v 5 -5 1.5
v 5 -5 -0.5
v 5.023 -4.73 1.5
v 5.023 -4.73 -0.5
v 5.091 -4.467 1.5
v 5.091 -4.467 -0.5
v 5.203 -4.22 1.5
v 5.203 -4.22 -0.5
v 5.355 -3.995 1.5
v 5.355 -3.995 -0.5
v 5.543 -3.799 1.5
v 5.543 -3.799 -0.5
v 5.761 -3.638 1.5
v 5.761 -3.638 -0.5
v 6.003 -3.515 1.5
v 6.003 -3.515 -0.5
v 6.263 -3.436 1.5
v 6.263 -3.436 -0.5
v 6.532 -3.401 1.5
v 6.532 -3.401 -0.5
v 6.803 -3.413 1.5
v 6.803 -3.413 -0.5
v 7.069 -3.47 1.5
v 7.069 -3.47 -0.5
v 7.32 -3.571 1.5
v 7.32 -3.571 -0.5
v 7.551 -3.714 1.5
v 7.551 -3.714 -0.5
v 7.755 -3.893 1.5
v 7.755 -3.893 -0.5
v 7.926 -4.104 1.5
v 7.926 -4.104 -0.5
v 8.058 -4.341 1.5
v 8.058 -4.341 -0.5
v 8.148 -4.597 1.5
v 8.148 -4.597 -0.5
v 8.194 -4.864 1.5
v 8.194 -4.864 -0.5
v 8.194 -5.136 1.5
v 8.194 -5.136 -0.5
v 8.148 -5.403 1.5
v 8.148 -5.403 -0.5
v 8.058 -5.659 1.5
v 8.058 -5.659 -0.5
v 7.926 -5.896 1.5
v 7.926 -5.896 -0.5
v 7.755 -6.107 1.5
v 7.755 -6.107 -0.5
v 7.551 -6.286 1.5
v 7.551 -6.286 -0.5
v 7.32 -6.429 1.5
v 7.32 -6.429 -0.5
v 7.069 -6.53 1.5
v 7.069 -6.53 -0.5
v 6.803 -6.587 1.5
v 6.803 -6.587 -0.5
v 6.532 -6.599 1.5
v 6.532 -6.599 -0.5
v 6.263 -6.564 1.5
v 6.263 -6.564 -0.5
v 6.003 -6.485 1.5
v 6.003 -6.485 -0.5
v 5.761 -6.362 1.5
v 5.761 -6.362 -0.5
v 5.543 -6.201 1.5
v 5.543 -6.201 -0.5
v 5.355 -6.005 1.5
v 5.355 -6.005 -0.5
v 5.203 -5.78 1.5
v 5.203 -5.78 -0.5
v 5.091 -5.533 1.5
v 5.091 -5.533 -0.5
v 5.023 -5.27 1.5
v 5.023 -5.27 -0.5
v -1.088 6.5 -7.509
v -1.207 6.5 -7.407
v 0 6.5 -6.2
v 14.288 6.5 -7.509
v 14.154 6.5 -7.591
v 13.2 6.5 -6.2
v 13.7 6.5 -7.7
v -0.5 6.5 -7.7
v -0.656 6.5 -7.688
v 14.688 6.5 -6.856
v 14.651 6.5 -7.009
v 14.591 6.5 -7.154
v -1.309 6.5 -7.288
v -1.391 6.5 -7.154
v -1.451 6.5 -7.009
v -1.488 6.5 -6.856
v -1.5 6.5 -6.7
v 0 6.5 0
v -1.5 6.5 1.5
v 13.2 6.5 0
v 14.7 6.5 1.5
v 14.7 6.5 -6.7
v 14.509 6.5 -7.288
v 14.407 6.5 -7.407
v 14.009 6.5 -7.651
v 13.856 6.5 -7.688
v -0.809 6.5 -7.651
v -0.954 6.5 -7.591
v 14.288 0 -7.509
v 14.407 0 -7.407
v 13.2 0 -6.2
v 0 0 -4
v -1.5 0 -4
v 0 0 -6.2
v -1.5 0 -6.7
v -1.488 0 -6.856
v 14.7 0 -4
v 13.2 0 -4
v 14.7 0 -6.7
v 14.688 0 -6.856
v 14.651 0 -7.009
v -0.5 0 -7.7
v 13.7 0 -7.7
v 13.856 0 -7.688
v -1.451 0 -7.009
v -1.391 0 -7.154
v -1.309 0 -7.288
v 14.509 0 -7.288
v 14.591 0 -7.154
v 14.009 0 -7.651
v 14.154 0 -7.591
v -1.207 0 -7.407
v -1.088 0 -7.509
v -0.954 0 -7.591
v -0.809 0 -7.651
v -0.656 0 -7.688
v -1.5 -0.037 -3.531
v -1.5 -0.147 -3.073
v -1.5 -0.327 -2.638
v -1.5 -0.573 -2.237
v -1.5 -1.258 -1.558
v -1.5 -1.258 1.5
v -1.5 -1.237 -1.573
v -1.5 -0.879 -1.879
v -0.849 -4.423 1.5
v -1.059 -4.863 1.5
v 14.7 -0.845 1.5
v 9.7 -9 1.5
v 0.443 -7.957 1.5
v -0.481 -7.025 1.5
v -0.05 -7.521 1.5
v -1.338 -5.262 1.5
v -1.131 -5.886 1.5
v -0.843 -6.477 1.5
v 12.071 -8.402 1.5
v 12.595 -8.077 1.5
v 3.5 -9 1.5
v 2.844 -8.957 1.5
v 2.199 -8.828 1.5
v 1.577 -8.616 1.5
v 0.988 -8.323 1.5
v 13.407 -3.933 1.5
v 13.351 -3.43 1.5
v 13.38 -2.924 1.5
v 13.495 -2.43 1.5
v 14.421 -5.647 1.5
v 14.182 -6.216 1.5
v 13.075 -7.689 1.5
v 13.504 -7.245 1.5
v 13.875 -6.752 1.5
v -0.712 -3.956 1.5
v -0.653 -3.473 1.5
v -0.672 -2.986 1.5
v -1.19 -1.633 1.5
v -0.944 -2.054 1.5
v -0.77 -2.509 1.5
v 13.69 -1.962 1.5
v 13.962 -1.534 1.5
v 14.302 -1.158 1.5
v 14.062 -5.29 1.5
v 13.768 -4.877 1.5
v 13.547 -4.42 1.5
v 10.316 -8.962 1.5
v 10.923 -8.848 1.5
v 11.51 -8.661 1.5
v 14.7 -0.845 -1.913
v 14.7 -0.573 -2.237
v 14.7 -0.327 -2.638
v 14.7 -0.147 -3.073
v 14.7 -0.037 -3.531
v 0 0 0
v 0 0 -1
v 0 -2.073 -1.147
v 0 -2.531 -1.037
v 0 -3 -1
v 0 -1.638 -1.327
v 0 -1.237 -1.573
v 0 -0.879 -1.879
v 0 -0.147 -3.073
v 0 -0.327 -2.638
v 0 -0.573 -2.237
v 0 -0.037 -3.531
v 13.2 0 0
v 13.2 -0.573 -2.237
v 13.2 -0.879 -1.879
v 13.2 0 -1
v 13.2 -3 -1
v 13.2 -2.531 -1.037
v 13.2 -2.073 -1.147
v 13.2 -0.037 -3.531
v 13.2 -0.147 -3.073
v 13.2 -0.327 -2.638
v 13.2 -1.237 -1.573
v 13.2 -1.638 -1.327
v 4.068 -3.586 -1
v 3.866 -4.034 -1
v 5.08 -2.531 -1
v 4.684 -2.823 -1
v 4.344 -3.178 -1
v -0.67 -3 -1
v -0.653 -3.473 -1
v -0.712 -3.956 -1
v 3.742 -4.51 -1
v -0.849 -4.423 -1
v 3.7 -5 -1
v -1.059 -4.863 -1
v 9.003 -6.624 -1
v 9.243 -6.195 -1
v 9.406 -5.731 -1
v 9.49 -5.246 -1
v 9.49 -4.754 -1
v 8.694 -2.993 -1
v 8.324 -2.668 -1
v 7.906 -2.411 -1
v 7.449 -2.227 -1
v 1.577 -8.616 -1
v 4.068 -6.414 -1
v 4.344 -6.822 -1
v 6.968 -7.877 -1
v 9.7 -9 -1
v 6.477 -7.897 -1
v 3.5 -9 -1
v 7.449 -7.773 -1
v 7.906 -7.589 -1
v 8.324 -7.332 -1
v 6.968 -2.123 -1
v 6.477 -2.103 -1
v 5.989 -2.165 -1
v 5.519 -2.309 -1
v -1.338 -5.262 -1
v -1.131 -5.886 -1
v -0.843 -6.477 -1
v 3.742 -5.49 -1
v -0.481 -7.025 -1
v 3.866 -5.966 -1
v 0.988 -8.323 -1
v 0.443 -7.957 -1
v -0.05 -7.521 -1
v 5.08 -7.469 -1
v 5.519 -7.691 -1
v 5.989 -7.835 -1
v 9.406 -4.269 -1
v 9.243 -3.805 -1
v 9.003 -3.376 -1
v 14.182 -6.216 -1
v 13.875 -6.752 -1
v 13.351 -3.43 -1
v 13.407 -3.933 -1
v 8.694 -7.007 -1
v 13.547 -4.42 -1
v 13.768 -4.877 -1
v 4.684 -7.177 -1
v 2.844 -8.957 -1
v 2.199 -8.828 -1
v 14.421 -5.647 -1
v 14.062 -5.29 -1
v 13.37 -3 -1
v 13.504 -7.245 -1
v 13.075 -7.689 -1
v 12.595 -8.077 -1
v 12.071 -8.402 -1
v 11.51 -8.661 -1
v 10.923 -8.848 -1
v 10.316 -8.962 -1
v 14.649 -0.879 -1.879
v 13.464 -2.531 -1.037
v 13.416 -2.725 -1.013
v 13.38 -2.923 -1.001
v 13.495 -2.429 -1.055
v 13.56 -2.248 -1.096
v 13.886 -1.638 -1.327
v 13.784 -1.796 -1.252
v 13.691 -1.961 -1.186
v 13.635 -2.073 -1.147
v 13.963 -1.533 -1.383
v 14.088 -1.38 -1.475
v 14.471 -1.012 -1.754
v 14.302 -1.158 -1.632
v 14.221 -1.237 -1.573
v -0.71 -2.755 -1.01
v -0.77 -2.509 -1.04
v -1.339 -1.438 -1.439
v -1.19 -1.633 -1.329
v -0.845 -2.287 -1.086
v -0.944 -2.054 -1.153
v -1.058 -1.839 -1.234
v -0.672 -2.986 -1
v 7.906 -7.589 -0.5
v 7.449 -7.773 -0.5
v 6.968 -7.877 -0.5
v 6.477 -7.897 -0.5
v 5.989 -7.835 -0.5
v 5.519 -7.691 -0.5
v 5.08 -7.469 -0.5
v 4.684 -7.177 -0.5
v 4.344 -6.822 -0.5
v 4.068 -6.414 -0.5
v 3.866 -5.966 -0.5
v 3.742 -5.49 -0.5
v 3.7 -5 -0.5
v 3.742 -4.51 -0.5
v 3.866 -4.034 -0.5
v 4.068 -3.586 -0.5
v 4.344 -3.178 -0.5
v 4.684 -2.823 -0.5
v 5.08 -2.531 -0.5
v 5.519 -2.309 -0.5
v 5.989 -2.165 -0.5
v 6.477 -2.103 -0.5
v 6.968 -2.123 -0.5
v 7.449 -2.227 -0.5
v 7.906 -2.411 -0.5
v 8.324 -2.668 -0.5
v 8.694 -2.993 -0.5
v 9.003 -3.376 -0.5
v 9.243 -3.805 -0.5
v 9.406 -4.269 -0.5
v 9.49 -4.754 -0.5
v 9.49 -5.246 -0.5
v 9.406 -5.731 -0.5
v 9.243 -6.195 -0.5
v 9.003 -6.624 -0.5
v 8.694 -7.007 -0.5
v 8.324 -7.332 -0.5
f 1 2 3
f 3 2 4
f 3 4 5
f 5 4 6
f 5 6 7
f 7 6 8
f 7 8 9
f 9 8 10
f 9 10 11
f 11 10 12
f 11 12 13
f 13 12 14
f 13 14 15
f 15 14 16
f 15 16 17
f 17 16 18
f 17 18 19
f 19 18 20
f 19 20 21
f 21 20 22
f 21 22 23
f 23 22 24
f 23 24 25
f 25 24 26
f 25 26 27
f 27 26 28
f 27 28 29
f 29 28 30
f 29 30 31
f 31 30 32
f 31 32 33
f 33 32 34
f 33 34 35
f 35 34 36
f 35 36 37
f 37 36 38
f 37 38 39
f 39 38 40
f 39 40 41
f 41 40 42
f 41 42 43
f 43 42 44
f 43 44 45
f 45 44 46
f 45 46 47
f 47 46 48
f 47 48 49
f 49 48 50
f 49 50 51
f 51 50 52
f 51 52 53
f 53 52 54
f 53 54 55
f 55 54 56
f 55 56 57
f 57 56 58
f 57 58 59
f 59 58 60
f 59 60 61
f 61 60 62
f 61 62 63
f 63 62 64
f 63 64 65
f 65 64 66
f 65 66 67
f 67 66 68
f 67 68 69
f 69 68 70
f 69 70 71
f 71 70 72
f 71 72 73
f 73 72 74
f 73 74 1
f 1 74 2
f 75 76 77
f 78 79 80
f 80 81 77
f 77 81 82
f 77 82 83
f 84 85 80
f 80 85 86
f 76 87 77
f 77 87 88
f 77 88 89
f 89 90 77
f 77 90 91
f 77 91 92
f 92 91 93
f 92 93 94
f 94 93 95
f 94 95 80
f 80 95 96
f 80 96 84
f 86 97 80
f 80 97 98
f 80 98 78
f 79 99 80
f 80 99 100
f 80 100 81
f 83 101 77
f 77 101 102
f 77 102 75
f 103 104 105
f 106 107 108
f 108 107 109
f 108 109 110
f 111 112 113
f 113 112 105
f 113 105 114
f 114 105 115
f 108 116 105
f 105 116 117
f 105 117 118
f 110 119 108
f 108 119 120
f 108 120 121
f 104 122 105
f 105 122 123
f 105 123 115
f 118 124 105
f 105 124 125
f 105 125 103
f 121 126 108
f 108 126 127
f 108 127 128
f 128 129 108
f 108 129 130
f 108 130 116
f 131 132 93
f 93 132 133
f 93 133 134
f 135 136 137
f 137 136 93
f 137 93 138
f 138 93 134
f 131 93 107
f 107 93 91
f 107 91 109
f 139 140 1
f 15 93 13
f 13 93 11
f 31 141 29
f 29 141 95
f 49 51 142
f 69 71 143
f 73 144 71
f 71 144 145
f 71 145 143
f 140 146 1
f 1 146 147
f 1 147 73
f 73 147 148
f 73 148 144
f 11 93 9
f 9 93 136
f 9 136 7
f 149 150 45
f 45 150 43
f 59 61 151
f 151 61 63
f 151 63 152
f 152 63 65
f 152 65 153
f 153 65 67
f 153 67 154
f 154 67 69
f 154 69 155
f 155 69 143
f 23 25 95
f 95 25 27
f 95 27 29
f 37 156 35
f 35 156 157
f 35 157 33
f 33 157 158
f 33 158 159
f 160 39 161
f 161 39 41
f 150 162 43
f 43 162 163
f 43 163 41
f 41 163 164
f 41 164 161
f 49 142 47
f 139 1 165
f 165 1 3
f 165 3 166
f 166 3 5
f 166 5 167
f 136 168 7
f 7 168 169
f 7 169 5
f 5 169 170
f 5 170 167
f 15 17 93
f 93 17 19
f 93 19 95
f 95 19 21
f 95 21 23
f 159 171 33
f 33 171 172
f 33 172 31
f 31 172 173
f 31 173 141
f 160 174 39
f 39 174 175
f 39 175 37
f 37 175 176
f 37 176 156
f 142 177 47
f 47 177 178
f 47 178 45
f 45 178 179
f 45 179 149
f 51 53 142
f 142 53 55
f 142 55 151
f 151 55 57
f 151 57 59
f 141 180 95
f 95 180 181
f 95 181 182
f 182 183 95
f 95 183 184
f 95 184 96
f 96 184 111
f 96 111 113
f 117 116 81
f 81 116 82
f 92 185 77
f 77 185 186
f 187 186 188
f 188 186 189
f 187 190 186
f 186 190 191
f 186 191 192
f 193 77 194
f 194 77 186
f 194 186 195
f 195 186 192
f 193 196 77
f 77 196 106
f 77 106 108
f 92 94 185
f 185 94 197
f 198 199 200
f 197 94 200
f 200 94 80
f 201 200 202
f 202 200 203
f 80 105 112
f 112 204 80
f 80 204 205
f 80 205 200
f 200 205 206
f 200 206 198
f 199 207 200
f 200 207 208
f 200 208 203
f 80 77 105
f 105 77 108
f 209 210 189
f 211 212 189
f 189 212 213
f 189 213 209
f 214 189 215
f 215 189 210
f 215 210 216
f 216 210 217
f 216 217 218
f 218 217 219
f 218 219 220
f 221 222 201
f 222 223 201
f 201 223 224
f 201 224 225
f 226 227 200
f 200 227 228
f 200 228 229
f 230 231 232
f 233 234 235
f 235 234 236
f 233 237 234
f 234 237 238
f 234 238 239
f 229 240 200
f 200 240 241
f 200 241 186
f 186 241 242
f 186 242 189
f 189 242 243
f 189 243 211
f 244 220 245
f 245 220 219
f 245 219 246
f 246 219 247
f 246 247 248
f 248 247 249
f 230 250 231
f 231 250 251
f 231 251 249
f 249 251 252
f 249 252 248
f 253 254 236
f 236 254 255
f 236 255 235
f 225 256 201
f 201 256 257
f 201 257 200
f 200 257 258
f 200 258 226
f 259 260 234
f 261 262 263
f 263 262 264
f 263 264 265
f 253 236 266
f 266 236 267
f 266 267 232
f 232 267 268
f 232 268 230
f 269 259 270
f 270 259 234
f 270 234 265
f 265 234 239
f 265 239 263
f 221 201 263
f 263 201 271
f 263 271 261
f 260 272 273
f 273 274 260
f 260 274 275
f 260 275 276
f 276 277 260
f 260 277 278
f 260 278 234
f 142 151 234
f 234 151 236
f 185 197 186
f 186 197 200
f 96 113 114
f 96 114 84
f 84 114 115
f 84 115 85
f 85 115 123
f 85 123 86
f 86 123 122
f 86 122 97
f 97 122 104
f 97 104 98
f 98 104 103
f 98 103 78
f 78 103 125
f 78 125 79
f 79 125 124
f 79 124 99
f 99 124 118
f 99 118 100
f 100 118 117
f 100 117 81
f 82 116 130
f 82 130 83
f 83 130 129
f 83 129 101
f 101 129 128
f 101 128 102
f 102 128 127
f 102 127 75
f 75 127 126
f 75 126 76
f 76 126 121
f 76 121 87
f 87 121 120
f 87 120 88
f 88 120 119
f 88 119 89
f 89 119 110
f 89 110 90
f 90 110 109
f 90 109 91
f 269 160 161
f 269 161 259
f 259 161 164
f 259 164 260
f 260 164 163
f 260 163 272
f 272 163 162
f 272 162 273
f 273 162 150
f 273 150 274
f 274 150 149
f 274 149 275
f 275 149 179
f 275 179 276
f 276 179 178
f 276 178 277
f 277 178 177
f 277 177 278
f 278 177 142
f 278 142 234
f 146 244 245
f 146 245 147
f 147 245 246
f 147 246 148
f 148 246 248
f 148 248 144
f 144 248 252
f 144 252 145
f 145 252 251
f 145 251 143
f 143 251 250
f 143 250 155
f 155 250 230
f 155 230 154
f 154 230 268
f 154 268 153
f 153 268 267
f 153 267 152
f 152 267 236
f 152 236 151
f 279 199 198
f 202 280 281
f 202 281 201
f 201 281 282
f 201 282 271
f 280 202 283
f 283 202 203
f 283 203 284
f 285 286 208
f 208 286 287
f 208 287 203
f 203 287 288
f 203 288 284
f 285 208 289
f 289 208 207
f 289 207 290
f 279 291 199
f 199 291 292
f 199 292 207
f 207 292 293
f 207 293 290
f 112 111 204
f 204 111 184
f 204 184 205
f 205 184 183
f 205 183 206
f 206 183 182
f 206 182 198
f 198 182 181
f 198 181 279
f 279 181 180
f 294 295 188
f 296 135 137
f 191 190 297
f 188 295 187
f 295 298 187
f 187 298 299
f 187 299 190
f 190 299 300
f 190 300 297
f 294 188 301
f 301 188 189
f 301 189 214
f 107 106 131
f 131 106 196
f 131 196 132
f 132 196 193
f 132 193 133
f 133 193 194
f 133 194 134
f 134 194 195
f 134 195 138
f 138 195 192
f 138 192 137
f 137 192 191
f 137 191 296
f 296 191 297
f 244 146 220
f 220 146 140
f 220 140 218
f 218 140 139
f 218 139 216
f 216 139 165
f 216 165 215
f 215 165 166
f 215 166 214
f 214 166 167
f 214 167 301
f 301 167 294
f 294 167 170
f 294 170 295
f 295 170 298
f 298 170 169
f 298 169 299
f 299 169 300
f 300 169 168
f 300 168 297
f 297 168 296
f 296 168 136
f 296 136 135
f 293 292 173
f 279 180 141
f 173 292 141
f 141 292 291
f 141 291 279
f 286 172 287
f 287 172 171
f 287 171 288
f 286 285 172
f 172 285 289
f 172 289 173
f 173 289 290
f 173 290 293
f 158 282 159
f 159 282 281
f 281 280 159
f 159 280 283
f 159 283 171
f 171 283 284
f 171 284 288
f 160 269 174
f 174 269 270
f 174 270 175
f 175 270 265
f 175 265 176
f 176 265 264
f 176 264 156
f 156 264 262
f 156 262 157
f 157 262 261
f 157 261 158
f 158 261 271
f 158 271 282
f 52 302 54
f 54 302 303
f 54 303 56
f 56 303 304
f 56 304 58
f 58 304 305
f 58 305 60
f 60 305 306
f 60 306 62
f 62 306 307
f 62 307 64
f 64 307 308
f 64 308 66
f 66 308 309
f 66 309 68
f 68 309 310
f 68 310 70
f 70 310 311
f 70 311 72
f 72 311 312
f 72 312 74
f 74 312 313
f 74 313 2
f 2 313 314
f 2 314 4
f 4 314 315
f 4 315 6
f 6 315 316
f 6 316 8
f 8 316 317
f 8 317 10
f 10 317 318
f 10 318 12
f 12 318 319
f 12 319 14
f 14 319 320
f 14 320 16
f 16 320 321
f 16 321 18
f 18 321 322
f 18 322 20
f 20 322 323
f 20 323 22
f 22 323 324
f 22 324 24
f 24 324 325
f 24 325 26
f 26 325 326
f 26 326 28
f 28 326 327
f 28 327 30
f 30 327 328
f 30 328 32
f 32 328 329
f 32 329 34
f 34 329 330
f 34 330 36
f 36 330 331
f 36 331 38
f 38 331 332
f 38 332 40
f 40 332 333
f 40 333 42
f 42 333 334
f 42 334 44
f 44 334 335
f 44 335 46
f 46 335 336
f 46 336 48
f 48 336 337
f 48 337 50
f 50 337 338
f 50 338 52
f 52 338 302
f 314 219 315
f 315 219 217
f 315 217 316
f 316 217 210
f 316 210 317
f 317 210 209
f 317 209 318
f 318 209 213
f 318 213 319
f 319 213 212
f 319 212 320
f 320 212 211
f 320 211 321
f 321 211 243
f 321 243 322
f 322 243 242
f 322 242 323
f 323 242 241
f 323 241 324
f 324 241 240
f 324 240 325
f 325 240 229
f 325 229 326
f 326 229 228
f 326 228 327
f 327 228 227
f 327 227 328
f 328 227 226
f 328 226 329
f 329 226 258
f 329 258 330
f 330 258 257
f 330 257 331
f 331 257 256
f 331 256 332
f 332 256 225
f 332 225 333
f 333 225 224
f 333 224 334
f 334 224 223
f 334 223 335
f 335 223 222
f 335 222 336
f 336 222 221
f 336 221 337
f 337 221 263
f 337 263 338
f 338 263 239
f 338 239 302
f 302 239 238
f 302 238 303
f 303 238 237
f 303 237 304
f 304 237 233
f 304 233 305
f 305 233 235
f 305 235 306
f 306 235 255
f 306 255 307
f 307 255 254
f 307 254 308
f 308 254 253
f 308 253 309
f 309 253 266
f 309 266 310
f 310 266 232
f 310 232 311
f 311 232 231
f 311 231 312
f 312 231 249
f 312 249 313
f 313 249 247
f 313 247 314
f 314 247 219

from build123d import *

# Parameters (mm, degrees)
CROQUIS1_W              = 16.2
CROQUIS1_H              = 9.2
CROQUIS1_W_2            = 13.2
CROQUIS1_H_2            = 6.2
SALIENTE_EXTRUIR1_DEPTH = 6.5
CROQUIS3_W              = 16.2
CROQUIS3_H              = 2.5
SALIENTE_EXTRUIR2_DEPTH = 9
CROQUIS4_R              = 1.6
CORTAR_EXTRUIR1_DEPTH   = 2.5
REDONDEO1_R             = 1
REDONDEO2_R             = 5
REDONDEO3_R             = 3
CORTAR_EXTRUIR2_REACH   = 21.538
CROQUIS5_R              = 3
CROQUIS6_R              = 2.9
CORTAR_EXTRUIR3_DEPTH   = 0.5


with BuildPart() as part:
    # Croquis1 → Saliente-Extruir1 (new body)
    with BuildSketch(Plane(origin=(0, 0, 0), x_dir=(1, 0, 0), z_dir=(0, 1, 0))):
        with Locations((6.6, 3.1)):
            Rectangle(CROQUIS1_W, CROQUIS1_H)
        with Locations((6.6, 3.1)):
            Rectangle(CROQUIS1_W_2, CROQUIS1_H_2, mode=Mode.SUBTRACT)
    extrude(amount=SALIENTE_EXTRUIR1_DEPTH)

    # Croquis3 → Saliente-Extruir2 (add)
    with BuildSketch(Plane.XZ):
        with Locations((6.6, 0.25)):
            Rectangle(CROQUIS3_W, CROQUIS3_H)
    extrude(amount=SALIENTE_EXTRUIR2_DEPTH)

    # Croquis4 → Cortar-Extruir1 (cut)
    with BuildSketch(Plane(origin=(0, 0, -1), x_dir=(-1, 0, 0), z_dir=(0, 0, -1))):
        with Locations((-6.6, -5)):
            Circle(CROQUIS4_R)
    extrude(amount=-CORTAR_EXTRUIR1_DEPTH, mode=Mode.SUBTRACT)

    # Redondeo1
    redondeo1_edges = [part.edges().sort_by_distance(p)[0] for p in [
        (-1.5, 3.25, -7.7),
        (14.7, 3.25, -7.7),
    ]]
    fillet(redondeo1_edges, radius=REDONDEO1_R)

    # Redondeo2
    redondeo2_edges = [part.edges().sort_by_distance(p)[0] for p in [
        (14.7, -9, 0.25),
        (-1.5, -9, 0.25),
    ]]
    fillet(redondeo2_edges, radius=REDONDEO2_R)

    # Redondeo3
    redondeo3_edges = [part.edges().sort_by_distance(p)[0] for p in [
        (13.95, 0, -1),
        (-0.75, 0, -1),
    ]]
    fillet(redondeo3_edges, radius=REDONDEO3_R)

    # Cortar-Extruir2: up to this face of the body (flat: up to its plane)
    cortar_extruir2_end = Plane(part.part.faces().sort_by_distance((6.6, -0.813832354, 1.5))[0])
    # Croquis5 → Cortar-Extruir2 (cut, up to the picked face)
    with BuildSketch(Plane(origin=(0, 0, -7.7), x_dir=(-1, 0, 0), z_dir=(0, 0, -1)), mode=Mode.PRIVATE) as cortar_extruir2_sk1:
        with Locations((-16.35, -3.35)):
            Circle(CROQUIS5_R)
    cortar_extruir2_tool1 = split(extrude(cortar_extruir2_sk1.sketch, amount=-CORTAR_EXTRUIR2_REACH, mode=Mode.PRIVATE), bisect_by=cortar_extruir2_end, keep=Keep.BOTH, mode=Mode.PRIVATE)
    # Croquis5 → Cortar-Extruir2 (cut, up to the picked face)
    with BuildSketch(Plane(origin=(0, 0, -7.7), x_dir=(-1, 0, 0), z_dir=(0, 0, -1)), mode=Mode.PRIVATE) as cortar_extruir2_sk2:
        with Locations((3.65, -3.35)):
            Circle(CROQUIS5_R)
    cortar_extruir2_tool2 = split(extrude(cortar_extruir2_sk2.sketch, amount=-CORTAR_EXTRUIR2_REACH, mode=Mode.PRIVATE), bisect_by=cortar_extruir2_end, keep=Keep.BOTH, mode=Mode.PRIVATE)
    add(cortar_extruir2_tool1.solids().sort_by(Axis((16.35, -3.35, -7.7), (0, 0, 1)))[0], mode=Mode.SUBTRACT)
    add(cortar_extruir2_tool2.solids().sort_by(Axis((-3.65, -3.35, -7.7), (0, 0, 1)))[0], mode=Mode.SUBTRACT)

    # Croquis6 → Cortar-Extruir3 (cut)
    with BuildSketch(Plane(origin=(0, 0, -1), x_dir=(-1, 0, 0), z_dir=(0, 0, -1))):
        with Locations((-6.6, -5)):
            Circle(CROQUIS6_R)
    extrude(amount=-CORTAR_EXTRUIR3_DEPTH, mode=Mode.SUBTRACT)


solid = part.part
